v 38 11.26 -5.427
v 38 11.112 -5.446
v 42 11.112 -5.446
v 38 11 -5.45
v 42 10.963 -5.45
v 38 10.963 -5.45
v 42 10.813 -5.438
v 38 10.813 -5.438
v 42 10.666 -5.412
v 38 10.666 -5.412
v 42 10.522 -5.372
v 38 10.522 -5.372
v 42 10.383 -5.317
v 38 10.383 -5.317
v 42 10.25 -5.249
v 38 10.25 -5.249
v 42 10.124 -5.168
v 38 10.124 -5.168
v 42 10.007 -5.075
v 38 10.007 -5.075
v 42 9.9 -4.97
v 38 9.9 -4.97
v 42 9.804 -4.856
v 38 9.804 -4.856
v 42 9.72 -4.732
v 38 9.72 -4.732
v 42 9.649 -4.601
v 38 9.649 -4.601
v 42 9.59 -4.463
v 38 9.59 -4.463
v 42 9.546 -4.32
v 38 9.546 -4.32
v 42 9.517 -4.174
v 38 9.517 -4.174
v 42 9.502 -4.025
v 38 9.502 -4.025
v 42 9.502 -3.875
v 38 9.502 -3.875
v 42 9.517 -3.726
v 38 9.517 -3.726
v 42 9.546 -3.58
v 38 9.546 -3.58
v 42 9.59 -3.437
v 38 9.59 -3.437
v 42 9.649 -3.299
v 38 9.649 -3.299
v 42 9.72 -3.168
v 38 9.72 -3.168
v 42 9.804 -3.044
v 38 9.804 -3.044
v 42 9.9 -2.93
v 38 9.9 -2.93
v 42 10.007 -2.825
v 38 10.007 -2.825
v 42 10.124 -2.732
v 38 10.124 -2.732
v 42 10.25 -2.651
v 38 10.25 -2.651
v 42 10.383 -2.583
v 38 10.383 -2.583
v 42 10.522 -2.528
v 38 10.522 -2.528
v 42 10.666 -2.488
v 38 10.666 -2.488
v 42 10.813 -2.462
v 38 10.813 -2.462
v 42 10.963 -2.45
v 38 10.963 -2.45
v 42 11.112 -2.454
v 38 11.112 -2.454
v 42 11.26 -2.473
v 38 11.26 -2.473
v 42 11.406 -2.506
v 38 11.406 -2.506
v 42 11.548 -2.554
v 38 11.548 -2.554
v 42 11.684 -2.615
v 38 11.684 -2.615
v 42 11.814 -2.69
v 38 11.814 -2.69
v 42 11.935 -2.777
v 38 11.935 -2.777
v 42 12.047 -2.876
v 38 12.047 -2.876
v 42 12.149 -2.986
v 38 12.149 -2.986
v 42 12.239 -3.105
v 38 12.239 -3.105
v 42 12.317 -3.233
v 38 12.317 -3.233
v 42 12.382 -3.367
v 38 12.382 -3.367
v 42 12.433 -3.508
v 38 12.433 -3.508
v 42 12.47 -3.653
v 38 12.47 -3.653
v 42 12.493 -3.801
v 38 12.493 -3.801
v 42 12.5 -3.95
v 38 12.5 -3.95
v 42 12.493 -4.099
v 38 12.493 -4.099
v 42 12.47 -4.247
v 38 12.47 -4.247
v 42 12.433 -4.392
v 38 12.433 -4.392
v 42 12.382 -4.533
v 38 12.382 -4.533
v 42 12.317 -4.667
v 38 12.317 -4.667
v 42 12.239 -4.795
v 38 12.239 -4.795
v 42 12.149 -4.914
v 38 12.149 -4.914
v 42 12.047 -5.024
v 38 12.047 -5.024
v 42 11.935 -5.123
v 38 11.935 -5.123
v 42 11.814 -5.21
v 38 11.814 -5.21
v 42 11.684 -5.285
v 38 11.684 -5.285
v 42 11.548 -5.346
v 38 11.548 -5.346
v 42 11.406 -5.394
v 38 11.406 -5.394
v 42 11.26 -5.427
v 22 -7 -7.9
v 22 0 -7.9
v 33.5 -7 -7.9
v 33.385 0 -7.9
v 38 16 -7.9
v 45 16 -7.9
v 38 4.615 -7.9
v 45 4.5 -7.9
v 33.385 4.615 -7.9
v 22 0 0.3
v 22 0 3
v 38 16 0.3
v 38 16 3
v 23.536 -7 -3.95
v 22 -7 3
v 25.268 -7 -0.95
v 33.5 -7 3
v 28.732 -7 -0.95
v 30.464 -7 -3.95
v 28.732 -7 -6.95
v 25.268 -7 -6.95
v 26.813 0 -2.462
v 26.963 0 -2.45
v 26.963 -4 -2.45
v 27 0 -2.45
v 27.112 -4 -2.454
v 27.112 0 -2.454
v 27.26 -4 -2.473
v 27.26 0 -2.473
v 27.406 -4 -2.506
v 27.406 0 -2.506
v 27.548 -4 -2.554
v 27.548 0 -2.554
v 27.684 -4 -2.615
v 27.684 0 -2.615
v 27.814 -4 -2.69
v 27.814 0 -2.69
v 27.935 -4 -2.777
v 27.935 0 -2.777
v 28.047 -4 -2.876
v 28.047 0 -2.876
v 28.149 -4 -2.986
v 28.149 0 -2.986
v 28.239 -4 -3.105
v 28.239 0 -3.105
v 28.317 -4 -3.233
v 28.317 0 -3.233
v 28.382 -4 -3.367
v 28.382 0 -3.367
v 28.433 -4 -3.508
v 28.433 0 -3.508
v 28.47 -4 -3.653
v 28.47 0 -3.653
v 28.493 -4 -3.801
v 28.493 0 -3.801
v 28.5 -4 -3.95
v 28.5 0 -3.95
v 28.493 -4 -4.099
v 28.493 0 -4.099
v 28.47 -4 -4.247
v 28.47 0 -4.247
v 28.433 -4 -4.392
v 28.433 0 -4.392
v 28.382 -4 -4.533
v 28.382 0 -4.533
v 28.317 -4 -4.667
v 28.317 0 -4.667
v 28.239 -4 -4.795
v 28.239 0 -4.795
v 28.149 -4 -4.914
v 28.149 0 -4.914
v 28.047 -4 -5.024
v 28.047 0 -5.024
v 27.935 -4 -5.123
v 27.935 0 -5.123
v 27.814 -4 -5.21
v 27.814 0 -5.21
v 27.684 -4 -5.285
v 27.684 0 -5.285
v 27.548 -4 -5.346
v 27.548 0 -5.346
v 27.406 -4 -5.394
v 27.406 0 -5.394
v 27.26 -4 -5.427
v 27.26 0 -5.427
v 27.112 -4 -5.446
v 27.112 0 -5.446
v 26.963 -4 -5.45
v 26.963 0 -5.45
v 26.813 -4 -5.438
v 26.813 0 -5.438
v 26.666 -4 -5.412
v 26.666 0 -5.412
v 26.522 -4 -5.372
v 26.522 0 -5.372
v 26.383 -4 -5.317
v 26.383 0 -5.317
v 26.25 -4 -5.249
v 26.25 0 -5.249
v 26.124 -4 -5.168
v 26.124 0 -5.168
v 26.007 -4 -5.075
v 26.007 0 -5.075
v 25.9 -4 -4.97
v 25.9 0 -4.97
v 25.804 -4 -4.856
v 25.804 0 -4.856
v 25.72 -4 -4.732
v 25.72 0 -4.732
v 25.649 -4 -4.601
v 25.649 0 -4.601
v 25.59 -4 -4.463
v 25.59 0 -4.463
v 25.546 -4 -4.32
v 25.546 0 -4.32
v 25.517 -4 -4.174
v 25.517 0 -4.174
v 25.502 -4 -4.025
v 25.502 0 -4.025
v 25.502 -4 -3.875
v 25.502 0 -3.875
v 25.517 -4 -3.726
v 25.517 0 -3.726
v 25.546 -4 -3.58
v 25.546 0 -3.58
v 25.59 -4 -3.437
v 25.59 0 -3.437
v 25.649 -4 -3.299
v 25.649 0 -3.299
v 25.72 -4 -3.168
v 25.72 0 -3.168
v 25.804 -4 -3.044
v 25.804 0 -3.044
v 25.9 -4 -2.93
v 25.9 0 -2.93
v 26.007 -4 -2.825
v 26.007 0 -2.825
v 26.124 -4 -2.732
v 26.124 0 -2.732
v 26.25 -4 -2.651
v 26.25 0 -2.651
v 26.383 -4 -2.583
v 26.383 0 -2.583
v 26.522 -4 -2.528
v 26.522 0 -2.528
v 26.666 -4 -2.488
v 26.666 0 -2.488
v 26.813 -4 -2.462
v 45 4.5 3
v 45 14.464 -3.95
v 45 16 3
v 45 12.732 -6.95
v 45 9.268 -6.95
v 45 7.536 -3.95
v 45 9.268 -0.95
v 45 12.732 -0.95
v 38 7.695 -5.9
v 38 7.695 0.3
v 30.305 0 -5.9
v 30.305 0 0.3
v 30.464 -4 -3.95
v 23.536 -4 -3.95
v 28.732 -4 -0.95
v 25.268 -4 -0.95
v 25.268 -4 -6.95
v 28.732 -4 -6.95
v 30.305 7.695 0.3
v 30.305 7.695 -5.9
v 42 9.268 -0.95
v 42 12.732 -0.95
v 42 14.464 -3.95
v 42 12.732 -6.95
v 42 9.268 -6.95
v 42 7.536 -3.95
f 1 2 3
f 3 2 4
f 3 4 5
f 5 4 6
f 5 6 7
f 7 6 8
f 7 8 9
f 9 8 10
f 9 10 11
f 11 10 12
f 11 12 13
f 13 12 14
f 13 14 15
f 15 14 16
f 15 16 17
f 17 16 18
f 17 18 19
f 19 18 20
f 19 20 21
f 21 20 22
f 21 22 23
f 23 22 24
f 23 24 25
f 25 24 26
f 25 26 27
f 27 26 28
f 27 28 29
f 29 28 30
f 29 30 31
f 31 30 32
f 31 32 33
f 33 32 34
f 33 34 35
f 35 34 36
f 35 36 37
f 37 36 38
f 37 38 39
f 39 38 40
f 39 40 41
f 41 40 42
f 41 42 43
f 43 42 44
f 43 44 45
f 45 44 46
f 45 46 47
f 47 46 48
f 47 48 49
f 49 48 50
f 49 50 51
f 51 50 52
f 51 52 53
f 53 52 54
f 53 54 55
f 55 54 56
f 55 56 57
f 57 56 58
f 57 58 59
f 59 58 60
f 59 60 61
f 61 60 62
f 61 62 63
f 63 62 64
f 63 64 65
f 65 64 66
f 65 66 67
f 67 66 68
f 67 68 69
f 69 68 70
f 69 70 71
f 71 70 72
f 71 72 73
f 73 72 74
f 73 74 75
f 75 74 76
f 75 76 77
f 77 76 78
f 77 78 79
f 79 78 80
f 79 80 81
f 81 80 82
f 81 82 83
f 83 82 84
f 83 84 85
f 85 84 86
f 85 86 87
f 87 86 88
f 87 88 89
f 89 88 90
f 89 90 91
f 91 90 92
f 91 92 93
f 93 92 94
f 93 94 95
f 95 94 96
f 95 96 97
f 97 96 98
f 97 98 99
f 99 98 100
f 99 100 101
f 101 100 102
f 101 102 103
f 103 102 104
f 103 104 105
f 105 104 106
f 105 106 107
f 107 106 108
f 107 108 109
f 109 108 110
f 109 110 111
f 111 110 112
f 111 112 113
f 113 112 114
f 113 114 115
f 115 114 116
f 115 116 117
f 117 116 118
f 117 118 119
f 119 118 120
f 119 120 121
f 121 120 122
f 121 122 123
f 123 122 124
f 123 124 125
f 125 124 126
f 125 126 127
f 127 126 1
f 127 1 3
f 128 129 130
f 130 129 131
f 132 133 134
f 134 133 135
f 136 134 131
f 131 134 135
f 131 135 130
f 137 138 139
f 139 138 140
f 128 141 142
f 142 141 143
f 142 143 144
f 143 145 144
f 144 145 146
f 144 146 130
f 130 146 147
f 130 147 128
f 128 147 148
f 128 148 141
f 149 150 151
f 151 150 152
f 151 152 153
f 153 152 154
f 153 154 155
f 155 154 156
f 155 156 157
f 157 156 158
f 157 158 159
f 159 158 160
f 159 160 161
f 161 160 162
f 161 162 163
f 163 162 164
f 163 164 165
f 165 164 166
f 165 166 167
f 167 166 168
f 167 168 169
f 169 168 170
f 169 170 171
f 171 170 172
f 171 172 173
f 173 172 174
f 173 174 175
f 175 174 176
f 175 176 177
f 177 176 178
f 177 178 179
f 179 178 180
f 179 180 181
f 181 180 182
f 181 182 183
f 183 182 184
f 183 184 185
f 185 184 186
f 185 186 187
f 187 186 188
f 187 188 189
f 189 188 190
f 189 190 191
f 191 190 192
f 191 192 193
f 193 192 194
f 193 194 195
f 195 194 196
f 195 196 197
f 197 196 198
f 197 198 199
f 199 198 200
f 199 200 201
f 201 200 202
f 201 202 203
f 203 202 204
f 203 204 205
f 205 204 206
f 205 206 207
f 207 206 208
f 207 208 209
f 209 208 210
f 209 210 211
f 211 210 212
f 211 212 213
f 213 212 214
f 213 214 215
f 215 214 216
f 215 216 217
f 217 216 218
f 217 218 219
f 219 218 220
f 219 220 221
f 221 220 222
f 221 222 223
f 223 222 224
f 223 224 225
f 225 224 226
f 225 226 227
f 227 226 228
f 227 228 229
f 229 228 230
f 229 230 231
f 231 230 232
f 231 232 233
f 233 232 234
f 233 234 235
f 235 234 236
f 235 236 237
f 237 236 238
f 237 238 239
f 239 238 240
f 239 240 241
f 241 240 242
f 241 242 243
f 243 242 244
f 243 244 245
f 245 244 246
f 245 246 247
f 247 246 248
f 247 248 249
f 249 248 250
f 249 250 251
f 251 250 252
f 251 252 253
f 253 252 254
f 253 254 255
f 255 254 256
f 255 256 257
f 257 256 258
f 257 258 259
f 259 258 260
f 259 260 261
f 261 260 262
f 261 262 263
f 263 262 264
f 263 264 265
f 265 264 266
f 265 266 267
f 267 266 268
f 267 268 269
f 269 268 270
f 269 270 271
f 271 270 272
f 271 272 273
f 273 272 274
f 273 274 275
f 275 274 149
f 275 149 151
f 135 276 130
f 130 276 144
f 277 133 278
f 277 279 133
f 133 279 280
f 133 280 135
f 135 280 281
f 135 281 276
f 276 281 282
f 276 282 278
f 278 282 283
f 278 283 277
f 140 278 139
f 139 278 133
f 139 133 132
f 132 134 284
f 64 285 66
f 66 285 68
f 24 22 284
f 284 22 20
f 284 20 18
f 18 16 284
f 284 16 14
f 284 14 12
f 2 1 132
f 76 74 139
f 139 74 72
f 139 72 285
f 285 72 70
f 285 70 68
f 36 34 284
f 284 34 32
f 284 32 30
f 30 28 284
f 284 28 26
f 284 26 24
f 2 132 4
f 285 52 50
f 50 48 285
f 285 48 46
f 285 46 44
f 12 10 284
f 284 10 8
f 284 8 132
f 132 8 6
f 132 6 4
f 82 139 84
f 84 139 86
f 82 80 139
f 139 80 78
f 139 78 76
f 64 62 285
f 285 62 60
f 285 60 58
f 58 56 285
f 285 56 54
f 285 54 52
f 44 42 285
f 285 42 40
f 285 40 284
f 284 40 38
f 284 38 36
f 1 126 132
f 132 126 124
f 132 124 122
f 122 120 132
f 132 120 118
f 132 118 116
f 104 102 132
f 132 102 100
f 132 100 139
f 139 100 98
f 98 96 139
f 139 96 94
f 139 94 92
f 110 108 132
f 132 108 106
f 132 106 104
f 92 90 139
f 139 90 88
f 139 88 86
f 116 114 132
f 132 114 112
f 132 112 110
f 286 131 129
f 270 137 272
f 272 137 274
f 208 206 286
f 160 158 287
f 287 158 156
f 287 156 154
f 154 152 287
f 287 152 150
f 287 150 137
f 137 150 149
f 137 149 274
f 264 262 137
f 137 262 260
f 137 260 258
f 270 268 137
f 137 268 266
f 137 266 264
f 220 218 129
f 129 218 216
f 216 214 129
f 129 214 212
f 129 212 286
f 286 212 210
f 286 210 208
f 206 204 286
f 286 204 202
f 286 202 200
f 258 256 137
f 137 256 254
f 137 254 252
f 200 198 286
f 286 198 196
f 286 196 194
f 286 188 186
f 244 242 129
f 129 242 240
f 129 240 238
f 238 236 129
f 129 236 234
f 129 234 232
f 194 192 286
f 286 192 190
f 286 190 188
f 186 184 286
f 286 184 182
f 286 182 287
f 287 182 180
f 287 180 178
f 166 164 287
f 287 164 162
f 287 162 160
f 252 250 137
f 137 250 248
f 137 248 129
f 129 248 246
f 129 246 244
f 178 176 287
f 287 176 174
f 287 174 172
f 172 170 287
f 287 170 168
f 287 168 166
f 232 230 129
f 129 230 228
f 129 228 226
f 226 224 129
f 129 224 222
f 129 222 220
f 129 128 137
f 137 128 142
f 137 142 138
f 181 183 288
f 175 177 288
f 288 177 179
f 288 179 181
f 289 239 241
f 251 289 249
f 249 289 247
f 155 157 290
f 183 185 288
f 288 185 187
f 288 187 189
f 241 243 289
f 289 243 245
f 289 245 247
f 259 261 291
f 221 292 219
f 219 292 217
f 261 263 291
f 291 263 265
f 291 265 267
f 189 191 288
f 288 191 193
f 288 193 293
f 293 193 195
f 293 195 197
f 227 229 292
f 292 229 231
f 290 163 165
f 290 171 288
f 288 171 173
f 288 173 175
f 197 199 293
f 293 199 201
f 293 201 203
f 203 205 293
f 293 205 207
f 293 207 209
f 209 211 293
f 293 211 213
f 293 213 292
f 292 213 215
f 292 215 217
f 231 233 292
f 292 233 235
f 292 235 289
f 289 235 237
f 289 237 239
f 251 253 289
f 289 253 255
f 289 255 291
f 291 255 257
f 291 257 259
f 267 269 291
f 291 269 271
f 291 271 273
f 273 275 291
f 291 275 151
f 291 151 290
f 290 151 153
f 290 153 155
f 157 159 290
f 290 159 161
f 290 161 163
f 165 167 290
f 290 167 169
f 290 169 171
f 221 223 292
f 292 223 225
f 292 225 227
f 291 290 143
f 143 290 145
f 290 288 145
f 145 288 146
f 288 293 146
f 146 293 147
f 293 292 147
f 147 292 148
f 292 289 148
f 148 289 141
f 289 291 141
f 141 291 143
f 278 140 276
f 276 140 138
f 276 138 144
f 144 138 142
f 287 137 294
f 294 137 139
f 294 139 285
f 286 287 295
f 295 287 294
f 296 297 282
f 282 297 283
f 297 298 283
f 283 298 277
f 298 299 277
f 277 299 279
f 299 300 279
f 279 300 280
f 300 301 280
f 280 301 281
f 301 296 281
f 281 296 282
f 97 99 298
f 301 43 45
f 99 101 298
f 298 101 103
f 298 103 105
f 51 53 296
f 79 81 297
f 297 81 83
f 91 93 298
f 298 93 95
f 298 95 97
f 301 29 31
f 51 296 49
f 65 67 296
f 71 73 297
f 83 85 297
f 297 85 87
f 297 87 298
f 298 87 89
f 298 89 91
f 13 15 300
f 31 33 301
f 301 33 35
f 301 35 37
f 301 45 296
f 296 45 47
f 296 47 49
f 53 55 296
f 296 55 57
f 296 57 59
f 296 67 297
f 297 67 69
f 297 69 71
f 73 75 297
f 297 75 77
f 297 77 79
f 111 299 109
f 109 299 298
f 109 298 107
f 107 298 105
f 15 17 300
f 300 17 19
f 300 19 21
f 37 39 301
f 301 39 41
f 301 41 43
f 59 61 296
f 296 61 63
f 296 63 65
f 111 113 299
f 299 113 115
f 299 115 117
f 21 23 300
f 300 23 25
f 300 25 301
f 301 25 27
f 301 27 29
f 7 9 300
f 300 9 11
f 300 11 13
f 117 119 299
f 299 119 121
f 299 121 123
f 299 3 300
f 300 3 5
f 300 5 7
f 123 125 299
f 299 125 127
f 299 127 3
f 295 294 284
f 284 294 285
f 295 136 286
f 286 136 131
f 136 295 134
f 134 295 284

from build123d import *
from OCP.BRepFilletAPI import BRepFilletAPI_MakeChamfer

# Parameters (mm, degrees)
BOSS_EXTRUDE1_DEPTH = 7.9
SKETCH2_R           = 1.5
CUT_EXTRUDE1_DEPTH  = 52.15085532
CUT_EXTRUDE3_DEPTH  = 3
BOSS_EXTRUDE2_DEPTH = 3
SKETCH5_W           = 8.304797865
SKETCH5_H           = 8.5
CUT_EXTRUDE4_DEPTH  = 49.408780195
CHAMFER1_SIZE       = 2
CHAMFER1_SIZE2      = 3.079729928


with BuildPart() as part:
    # Sketch1 → Boss-Extrude1 (new body)
    with BuildSketch(Plane.XY):
        Polygon((30, 8), (30, 0), (22, 0), (22, -7), (33.5, -7), (45, 4.5), (45, 16), (38, 16), (38, 8), align=None)
    extrude(amount=-BOSS_EXTRUDE1_DEPTH)

    # Sketch2 → Cut-Extrude1 (cut, through all)
    with BuildSketch(Plane.XZ.offset(7)):
        with Locations((27, -3.95)):
            Circle(SKETCH2_R)
    cut_extrude1 = extrude(amount=-CUT_EXTRUDE1_DEPTH, mode=Mode.SUBTRACT)

    # Sketch3 → Cut-Extrude3 (cut)
    with BuildSketch(Plane(origin=(38, -7, 0), x_dir=(0, 0, -1), z_dir=(0, 1, 0))):
        Polygon((0.95, 12.732050808), (3.95, 14.464101615), (6.95, 12.732050808), (6.95, 9.267949192), (3.95, 7.535898385), (0.95, 9.267949192), align=None)
    cut_extrude3 = extrude(amount=CUT_EXTRUDE3_DEPTH, mode=Mode.SUBTRACT)

    # Sketch4 → Boss-Extrude2 (add)
    with BuildSketch(Plane.XY):
        Polygon((22, 0), (38, 16), (45, 16), (45, 4.5), (33.5, -7), (22, -7), align=None)
    extrude(amount=BOSS_EXTRUDE2_DEPTH)

    # Sketch5 → Cut-Extrude4 (cut, through all)
    with BuildSketch(Plane(origin=(0, 0, 0), x_dir=(1, 0, 0), z_dir=(0, 1, 0))):
        with Locations((26.152398932, 3.95)):
            Rectangle(SKETCH5_W, SKETCH5_H)
    cut_extrude4 = extrude(amount=CUT_EXTRUDE4_DEPTH, mode=Mode.SUBTRACT)

    # Mirror1: Cut-Extrude1, Cut-Extrude3, Cut-Extrude4 across plane
    add(cut_extrude1.mirror(Plane(origin=(19, 19, 0), x_dir=(0, 0, 1), z_dir=(0.707106781186547, 0.707106781186548, 0))), mode=Mode.SUBTRACT)
    add(cut_extrude3.mirror(Plane(origin=(19, 19, 0), x_dir=(0, 0, 1), z_dir=(0.707106781186547, 0.707106781186548, 0))), mode=Mode.SUBTRACT)
    add(cut_extrude4.mirror(Plane(origin=(19, 19, 0), x_dir=(0, 0, 1), z_dir=(0.707106781186547, 0.707106781186548, 0))), mode=Mode.SUBTRACT)

    # Chamfer1: one chamfer whose edges measure the first distance from different faces: ONE call of the kernel's chamfer builder (chamfer() names one face for all edges)
    chamfer1_edges_1 = [part.edges().sort_by_distance(p)[0] for p in [
        (34.152398932, 7.695202135, -7.9),
    ]]
    chamfer1_side_1 = [part.faces().sort_by_distance(p)[0] for p in [
        (34.152398932, 7.695202135, -3.8),
    ]]
    chamfer1_edges_2 = [part.edges().sort_by_distance(p)[0] for p in [
        (30.304797865, 3.847601068, -7.9),
    ]]
    chamfer1_side_2 = [part.faces().sort_by_distance(p)[0] for p in [
        (30.304797865, 3.847601068, -3.8),
    ]]
    chamfer1 = BRepFilletAPI_MakeChamfer(part.part.solid().wrapped)
    for e in chamfer1_edges_1:
        chamfer1.Add(CHAMFER1_SIZE, CHAMFER1_SIZE2, e.wrapped, chamfer1_side_1[0].wrapped)  # the first distance lies on this face
    for e in chamfer1_edges_2:
        chamfer1.Add(CHAMFER1_SIZE, CHAMFER1_SIZE2, e.wrapped, chamfer1_side_2[0].wrapped)  # the first distance lies on this face
    add(Compound.cast(chamfer1.Shape()), mode=Mode.REPLACE)


solid = part.part
